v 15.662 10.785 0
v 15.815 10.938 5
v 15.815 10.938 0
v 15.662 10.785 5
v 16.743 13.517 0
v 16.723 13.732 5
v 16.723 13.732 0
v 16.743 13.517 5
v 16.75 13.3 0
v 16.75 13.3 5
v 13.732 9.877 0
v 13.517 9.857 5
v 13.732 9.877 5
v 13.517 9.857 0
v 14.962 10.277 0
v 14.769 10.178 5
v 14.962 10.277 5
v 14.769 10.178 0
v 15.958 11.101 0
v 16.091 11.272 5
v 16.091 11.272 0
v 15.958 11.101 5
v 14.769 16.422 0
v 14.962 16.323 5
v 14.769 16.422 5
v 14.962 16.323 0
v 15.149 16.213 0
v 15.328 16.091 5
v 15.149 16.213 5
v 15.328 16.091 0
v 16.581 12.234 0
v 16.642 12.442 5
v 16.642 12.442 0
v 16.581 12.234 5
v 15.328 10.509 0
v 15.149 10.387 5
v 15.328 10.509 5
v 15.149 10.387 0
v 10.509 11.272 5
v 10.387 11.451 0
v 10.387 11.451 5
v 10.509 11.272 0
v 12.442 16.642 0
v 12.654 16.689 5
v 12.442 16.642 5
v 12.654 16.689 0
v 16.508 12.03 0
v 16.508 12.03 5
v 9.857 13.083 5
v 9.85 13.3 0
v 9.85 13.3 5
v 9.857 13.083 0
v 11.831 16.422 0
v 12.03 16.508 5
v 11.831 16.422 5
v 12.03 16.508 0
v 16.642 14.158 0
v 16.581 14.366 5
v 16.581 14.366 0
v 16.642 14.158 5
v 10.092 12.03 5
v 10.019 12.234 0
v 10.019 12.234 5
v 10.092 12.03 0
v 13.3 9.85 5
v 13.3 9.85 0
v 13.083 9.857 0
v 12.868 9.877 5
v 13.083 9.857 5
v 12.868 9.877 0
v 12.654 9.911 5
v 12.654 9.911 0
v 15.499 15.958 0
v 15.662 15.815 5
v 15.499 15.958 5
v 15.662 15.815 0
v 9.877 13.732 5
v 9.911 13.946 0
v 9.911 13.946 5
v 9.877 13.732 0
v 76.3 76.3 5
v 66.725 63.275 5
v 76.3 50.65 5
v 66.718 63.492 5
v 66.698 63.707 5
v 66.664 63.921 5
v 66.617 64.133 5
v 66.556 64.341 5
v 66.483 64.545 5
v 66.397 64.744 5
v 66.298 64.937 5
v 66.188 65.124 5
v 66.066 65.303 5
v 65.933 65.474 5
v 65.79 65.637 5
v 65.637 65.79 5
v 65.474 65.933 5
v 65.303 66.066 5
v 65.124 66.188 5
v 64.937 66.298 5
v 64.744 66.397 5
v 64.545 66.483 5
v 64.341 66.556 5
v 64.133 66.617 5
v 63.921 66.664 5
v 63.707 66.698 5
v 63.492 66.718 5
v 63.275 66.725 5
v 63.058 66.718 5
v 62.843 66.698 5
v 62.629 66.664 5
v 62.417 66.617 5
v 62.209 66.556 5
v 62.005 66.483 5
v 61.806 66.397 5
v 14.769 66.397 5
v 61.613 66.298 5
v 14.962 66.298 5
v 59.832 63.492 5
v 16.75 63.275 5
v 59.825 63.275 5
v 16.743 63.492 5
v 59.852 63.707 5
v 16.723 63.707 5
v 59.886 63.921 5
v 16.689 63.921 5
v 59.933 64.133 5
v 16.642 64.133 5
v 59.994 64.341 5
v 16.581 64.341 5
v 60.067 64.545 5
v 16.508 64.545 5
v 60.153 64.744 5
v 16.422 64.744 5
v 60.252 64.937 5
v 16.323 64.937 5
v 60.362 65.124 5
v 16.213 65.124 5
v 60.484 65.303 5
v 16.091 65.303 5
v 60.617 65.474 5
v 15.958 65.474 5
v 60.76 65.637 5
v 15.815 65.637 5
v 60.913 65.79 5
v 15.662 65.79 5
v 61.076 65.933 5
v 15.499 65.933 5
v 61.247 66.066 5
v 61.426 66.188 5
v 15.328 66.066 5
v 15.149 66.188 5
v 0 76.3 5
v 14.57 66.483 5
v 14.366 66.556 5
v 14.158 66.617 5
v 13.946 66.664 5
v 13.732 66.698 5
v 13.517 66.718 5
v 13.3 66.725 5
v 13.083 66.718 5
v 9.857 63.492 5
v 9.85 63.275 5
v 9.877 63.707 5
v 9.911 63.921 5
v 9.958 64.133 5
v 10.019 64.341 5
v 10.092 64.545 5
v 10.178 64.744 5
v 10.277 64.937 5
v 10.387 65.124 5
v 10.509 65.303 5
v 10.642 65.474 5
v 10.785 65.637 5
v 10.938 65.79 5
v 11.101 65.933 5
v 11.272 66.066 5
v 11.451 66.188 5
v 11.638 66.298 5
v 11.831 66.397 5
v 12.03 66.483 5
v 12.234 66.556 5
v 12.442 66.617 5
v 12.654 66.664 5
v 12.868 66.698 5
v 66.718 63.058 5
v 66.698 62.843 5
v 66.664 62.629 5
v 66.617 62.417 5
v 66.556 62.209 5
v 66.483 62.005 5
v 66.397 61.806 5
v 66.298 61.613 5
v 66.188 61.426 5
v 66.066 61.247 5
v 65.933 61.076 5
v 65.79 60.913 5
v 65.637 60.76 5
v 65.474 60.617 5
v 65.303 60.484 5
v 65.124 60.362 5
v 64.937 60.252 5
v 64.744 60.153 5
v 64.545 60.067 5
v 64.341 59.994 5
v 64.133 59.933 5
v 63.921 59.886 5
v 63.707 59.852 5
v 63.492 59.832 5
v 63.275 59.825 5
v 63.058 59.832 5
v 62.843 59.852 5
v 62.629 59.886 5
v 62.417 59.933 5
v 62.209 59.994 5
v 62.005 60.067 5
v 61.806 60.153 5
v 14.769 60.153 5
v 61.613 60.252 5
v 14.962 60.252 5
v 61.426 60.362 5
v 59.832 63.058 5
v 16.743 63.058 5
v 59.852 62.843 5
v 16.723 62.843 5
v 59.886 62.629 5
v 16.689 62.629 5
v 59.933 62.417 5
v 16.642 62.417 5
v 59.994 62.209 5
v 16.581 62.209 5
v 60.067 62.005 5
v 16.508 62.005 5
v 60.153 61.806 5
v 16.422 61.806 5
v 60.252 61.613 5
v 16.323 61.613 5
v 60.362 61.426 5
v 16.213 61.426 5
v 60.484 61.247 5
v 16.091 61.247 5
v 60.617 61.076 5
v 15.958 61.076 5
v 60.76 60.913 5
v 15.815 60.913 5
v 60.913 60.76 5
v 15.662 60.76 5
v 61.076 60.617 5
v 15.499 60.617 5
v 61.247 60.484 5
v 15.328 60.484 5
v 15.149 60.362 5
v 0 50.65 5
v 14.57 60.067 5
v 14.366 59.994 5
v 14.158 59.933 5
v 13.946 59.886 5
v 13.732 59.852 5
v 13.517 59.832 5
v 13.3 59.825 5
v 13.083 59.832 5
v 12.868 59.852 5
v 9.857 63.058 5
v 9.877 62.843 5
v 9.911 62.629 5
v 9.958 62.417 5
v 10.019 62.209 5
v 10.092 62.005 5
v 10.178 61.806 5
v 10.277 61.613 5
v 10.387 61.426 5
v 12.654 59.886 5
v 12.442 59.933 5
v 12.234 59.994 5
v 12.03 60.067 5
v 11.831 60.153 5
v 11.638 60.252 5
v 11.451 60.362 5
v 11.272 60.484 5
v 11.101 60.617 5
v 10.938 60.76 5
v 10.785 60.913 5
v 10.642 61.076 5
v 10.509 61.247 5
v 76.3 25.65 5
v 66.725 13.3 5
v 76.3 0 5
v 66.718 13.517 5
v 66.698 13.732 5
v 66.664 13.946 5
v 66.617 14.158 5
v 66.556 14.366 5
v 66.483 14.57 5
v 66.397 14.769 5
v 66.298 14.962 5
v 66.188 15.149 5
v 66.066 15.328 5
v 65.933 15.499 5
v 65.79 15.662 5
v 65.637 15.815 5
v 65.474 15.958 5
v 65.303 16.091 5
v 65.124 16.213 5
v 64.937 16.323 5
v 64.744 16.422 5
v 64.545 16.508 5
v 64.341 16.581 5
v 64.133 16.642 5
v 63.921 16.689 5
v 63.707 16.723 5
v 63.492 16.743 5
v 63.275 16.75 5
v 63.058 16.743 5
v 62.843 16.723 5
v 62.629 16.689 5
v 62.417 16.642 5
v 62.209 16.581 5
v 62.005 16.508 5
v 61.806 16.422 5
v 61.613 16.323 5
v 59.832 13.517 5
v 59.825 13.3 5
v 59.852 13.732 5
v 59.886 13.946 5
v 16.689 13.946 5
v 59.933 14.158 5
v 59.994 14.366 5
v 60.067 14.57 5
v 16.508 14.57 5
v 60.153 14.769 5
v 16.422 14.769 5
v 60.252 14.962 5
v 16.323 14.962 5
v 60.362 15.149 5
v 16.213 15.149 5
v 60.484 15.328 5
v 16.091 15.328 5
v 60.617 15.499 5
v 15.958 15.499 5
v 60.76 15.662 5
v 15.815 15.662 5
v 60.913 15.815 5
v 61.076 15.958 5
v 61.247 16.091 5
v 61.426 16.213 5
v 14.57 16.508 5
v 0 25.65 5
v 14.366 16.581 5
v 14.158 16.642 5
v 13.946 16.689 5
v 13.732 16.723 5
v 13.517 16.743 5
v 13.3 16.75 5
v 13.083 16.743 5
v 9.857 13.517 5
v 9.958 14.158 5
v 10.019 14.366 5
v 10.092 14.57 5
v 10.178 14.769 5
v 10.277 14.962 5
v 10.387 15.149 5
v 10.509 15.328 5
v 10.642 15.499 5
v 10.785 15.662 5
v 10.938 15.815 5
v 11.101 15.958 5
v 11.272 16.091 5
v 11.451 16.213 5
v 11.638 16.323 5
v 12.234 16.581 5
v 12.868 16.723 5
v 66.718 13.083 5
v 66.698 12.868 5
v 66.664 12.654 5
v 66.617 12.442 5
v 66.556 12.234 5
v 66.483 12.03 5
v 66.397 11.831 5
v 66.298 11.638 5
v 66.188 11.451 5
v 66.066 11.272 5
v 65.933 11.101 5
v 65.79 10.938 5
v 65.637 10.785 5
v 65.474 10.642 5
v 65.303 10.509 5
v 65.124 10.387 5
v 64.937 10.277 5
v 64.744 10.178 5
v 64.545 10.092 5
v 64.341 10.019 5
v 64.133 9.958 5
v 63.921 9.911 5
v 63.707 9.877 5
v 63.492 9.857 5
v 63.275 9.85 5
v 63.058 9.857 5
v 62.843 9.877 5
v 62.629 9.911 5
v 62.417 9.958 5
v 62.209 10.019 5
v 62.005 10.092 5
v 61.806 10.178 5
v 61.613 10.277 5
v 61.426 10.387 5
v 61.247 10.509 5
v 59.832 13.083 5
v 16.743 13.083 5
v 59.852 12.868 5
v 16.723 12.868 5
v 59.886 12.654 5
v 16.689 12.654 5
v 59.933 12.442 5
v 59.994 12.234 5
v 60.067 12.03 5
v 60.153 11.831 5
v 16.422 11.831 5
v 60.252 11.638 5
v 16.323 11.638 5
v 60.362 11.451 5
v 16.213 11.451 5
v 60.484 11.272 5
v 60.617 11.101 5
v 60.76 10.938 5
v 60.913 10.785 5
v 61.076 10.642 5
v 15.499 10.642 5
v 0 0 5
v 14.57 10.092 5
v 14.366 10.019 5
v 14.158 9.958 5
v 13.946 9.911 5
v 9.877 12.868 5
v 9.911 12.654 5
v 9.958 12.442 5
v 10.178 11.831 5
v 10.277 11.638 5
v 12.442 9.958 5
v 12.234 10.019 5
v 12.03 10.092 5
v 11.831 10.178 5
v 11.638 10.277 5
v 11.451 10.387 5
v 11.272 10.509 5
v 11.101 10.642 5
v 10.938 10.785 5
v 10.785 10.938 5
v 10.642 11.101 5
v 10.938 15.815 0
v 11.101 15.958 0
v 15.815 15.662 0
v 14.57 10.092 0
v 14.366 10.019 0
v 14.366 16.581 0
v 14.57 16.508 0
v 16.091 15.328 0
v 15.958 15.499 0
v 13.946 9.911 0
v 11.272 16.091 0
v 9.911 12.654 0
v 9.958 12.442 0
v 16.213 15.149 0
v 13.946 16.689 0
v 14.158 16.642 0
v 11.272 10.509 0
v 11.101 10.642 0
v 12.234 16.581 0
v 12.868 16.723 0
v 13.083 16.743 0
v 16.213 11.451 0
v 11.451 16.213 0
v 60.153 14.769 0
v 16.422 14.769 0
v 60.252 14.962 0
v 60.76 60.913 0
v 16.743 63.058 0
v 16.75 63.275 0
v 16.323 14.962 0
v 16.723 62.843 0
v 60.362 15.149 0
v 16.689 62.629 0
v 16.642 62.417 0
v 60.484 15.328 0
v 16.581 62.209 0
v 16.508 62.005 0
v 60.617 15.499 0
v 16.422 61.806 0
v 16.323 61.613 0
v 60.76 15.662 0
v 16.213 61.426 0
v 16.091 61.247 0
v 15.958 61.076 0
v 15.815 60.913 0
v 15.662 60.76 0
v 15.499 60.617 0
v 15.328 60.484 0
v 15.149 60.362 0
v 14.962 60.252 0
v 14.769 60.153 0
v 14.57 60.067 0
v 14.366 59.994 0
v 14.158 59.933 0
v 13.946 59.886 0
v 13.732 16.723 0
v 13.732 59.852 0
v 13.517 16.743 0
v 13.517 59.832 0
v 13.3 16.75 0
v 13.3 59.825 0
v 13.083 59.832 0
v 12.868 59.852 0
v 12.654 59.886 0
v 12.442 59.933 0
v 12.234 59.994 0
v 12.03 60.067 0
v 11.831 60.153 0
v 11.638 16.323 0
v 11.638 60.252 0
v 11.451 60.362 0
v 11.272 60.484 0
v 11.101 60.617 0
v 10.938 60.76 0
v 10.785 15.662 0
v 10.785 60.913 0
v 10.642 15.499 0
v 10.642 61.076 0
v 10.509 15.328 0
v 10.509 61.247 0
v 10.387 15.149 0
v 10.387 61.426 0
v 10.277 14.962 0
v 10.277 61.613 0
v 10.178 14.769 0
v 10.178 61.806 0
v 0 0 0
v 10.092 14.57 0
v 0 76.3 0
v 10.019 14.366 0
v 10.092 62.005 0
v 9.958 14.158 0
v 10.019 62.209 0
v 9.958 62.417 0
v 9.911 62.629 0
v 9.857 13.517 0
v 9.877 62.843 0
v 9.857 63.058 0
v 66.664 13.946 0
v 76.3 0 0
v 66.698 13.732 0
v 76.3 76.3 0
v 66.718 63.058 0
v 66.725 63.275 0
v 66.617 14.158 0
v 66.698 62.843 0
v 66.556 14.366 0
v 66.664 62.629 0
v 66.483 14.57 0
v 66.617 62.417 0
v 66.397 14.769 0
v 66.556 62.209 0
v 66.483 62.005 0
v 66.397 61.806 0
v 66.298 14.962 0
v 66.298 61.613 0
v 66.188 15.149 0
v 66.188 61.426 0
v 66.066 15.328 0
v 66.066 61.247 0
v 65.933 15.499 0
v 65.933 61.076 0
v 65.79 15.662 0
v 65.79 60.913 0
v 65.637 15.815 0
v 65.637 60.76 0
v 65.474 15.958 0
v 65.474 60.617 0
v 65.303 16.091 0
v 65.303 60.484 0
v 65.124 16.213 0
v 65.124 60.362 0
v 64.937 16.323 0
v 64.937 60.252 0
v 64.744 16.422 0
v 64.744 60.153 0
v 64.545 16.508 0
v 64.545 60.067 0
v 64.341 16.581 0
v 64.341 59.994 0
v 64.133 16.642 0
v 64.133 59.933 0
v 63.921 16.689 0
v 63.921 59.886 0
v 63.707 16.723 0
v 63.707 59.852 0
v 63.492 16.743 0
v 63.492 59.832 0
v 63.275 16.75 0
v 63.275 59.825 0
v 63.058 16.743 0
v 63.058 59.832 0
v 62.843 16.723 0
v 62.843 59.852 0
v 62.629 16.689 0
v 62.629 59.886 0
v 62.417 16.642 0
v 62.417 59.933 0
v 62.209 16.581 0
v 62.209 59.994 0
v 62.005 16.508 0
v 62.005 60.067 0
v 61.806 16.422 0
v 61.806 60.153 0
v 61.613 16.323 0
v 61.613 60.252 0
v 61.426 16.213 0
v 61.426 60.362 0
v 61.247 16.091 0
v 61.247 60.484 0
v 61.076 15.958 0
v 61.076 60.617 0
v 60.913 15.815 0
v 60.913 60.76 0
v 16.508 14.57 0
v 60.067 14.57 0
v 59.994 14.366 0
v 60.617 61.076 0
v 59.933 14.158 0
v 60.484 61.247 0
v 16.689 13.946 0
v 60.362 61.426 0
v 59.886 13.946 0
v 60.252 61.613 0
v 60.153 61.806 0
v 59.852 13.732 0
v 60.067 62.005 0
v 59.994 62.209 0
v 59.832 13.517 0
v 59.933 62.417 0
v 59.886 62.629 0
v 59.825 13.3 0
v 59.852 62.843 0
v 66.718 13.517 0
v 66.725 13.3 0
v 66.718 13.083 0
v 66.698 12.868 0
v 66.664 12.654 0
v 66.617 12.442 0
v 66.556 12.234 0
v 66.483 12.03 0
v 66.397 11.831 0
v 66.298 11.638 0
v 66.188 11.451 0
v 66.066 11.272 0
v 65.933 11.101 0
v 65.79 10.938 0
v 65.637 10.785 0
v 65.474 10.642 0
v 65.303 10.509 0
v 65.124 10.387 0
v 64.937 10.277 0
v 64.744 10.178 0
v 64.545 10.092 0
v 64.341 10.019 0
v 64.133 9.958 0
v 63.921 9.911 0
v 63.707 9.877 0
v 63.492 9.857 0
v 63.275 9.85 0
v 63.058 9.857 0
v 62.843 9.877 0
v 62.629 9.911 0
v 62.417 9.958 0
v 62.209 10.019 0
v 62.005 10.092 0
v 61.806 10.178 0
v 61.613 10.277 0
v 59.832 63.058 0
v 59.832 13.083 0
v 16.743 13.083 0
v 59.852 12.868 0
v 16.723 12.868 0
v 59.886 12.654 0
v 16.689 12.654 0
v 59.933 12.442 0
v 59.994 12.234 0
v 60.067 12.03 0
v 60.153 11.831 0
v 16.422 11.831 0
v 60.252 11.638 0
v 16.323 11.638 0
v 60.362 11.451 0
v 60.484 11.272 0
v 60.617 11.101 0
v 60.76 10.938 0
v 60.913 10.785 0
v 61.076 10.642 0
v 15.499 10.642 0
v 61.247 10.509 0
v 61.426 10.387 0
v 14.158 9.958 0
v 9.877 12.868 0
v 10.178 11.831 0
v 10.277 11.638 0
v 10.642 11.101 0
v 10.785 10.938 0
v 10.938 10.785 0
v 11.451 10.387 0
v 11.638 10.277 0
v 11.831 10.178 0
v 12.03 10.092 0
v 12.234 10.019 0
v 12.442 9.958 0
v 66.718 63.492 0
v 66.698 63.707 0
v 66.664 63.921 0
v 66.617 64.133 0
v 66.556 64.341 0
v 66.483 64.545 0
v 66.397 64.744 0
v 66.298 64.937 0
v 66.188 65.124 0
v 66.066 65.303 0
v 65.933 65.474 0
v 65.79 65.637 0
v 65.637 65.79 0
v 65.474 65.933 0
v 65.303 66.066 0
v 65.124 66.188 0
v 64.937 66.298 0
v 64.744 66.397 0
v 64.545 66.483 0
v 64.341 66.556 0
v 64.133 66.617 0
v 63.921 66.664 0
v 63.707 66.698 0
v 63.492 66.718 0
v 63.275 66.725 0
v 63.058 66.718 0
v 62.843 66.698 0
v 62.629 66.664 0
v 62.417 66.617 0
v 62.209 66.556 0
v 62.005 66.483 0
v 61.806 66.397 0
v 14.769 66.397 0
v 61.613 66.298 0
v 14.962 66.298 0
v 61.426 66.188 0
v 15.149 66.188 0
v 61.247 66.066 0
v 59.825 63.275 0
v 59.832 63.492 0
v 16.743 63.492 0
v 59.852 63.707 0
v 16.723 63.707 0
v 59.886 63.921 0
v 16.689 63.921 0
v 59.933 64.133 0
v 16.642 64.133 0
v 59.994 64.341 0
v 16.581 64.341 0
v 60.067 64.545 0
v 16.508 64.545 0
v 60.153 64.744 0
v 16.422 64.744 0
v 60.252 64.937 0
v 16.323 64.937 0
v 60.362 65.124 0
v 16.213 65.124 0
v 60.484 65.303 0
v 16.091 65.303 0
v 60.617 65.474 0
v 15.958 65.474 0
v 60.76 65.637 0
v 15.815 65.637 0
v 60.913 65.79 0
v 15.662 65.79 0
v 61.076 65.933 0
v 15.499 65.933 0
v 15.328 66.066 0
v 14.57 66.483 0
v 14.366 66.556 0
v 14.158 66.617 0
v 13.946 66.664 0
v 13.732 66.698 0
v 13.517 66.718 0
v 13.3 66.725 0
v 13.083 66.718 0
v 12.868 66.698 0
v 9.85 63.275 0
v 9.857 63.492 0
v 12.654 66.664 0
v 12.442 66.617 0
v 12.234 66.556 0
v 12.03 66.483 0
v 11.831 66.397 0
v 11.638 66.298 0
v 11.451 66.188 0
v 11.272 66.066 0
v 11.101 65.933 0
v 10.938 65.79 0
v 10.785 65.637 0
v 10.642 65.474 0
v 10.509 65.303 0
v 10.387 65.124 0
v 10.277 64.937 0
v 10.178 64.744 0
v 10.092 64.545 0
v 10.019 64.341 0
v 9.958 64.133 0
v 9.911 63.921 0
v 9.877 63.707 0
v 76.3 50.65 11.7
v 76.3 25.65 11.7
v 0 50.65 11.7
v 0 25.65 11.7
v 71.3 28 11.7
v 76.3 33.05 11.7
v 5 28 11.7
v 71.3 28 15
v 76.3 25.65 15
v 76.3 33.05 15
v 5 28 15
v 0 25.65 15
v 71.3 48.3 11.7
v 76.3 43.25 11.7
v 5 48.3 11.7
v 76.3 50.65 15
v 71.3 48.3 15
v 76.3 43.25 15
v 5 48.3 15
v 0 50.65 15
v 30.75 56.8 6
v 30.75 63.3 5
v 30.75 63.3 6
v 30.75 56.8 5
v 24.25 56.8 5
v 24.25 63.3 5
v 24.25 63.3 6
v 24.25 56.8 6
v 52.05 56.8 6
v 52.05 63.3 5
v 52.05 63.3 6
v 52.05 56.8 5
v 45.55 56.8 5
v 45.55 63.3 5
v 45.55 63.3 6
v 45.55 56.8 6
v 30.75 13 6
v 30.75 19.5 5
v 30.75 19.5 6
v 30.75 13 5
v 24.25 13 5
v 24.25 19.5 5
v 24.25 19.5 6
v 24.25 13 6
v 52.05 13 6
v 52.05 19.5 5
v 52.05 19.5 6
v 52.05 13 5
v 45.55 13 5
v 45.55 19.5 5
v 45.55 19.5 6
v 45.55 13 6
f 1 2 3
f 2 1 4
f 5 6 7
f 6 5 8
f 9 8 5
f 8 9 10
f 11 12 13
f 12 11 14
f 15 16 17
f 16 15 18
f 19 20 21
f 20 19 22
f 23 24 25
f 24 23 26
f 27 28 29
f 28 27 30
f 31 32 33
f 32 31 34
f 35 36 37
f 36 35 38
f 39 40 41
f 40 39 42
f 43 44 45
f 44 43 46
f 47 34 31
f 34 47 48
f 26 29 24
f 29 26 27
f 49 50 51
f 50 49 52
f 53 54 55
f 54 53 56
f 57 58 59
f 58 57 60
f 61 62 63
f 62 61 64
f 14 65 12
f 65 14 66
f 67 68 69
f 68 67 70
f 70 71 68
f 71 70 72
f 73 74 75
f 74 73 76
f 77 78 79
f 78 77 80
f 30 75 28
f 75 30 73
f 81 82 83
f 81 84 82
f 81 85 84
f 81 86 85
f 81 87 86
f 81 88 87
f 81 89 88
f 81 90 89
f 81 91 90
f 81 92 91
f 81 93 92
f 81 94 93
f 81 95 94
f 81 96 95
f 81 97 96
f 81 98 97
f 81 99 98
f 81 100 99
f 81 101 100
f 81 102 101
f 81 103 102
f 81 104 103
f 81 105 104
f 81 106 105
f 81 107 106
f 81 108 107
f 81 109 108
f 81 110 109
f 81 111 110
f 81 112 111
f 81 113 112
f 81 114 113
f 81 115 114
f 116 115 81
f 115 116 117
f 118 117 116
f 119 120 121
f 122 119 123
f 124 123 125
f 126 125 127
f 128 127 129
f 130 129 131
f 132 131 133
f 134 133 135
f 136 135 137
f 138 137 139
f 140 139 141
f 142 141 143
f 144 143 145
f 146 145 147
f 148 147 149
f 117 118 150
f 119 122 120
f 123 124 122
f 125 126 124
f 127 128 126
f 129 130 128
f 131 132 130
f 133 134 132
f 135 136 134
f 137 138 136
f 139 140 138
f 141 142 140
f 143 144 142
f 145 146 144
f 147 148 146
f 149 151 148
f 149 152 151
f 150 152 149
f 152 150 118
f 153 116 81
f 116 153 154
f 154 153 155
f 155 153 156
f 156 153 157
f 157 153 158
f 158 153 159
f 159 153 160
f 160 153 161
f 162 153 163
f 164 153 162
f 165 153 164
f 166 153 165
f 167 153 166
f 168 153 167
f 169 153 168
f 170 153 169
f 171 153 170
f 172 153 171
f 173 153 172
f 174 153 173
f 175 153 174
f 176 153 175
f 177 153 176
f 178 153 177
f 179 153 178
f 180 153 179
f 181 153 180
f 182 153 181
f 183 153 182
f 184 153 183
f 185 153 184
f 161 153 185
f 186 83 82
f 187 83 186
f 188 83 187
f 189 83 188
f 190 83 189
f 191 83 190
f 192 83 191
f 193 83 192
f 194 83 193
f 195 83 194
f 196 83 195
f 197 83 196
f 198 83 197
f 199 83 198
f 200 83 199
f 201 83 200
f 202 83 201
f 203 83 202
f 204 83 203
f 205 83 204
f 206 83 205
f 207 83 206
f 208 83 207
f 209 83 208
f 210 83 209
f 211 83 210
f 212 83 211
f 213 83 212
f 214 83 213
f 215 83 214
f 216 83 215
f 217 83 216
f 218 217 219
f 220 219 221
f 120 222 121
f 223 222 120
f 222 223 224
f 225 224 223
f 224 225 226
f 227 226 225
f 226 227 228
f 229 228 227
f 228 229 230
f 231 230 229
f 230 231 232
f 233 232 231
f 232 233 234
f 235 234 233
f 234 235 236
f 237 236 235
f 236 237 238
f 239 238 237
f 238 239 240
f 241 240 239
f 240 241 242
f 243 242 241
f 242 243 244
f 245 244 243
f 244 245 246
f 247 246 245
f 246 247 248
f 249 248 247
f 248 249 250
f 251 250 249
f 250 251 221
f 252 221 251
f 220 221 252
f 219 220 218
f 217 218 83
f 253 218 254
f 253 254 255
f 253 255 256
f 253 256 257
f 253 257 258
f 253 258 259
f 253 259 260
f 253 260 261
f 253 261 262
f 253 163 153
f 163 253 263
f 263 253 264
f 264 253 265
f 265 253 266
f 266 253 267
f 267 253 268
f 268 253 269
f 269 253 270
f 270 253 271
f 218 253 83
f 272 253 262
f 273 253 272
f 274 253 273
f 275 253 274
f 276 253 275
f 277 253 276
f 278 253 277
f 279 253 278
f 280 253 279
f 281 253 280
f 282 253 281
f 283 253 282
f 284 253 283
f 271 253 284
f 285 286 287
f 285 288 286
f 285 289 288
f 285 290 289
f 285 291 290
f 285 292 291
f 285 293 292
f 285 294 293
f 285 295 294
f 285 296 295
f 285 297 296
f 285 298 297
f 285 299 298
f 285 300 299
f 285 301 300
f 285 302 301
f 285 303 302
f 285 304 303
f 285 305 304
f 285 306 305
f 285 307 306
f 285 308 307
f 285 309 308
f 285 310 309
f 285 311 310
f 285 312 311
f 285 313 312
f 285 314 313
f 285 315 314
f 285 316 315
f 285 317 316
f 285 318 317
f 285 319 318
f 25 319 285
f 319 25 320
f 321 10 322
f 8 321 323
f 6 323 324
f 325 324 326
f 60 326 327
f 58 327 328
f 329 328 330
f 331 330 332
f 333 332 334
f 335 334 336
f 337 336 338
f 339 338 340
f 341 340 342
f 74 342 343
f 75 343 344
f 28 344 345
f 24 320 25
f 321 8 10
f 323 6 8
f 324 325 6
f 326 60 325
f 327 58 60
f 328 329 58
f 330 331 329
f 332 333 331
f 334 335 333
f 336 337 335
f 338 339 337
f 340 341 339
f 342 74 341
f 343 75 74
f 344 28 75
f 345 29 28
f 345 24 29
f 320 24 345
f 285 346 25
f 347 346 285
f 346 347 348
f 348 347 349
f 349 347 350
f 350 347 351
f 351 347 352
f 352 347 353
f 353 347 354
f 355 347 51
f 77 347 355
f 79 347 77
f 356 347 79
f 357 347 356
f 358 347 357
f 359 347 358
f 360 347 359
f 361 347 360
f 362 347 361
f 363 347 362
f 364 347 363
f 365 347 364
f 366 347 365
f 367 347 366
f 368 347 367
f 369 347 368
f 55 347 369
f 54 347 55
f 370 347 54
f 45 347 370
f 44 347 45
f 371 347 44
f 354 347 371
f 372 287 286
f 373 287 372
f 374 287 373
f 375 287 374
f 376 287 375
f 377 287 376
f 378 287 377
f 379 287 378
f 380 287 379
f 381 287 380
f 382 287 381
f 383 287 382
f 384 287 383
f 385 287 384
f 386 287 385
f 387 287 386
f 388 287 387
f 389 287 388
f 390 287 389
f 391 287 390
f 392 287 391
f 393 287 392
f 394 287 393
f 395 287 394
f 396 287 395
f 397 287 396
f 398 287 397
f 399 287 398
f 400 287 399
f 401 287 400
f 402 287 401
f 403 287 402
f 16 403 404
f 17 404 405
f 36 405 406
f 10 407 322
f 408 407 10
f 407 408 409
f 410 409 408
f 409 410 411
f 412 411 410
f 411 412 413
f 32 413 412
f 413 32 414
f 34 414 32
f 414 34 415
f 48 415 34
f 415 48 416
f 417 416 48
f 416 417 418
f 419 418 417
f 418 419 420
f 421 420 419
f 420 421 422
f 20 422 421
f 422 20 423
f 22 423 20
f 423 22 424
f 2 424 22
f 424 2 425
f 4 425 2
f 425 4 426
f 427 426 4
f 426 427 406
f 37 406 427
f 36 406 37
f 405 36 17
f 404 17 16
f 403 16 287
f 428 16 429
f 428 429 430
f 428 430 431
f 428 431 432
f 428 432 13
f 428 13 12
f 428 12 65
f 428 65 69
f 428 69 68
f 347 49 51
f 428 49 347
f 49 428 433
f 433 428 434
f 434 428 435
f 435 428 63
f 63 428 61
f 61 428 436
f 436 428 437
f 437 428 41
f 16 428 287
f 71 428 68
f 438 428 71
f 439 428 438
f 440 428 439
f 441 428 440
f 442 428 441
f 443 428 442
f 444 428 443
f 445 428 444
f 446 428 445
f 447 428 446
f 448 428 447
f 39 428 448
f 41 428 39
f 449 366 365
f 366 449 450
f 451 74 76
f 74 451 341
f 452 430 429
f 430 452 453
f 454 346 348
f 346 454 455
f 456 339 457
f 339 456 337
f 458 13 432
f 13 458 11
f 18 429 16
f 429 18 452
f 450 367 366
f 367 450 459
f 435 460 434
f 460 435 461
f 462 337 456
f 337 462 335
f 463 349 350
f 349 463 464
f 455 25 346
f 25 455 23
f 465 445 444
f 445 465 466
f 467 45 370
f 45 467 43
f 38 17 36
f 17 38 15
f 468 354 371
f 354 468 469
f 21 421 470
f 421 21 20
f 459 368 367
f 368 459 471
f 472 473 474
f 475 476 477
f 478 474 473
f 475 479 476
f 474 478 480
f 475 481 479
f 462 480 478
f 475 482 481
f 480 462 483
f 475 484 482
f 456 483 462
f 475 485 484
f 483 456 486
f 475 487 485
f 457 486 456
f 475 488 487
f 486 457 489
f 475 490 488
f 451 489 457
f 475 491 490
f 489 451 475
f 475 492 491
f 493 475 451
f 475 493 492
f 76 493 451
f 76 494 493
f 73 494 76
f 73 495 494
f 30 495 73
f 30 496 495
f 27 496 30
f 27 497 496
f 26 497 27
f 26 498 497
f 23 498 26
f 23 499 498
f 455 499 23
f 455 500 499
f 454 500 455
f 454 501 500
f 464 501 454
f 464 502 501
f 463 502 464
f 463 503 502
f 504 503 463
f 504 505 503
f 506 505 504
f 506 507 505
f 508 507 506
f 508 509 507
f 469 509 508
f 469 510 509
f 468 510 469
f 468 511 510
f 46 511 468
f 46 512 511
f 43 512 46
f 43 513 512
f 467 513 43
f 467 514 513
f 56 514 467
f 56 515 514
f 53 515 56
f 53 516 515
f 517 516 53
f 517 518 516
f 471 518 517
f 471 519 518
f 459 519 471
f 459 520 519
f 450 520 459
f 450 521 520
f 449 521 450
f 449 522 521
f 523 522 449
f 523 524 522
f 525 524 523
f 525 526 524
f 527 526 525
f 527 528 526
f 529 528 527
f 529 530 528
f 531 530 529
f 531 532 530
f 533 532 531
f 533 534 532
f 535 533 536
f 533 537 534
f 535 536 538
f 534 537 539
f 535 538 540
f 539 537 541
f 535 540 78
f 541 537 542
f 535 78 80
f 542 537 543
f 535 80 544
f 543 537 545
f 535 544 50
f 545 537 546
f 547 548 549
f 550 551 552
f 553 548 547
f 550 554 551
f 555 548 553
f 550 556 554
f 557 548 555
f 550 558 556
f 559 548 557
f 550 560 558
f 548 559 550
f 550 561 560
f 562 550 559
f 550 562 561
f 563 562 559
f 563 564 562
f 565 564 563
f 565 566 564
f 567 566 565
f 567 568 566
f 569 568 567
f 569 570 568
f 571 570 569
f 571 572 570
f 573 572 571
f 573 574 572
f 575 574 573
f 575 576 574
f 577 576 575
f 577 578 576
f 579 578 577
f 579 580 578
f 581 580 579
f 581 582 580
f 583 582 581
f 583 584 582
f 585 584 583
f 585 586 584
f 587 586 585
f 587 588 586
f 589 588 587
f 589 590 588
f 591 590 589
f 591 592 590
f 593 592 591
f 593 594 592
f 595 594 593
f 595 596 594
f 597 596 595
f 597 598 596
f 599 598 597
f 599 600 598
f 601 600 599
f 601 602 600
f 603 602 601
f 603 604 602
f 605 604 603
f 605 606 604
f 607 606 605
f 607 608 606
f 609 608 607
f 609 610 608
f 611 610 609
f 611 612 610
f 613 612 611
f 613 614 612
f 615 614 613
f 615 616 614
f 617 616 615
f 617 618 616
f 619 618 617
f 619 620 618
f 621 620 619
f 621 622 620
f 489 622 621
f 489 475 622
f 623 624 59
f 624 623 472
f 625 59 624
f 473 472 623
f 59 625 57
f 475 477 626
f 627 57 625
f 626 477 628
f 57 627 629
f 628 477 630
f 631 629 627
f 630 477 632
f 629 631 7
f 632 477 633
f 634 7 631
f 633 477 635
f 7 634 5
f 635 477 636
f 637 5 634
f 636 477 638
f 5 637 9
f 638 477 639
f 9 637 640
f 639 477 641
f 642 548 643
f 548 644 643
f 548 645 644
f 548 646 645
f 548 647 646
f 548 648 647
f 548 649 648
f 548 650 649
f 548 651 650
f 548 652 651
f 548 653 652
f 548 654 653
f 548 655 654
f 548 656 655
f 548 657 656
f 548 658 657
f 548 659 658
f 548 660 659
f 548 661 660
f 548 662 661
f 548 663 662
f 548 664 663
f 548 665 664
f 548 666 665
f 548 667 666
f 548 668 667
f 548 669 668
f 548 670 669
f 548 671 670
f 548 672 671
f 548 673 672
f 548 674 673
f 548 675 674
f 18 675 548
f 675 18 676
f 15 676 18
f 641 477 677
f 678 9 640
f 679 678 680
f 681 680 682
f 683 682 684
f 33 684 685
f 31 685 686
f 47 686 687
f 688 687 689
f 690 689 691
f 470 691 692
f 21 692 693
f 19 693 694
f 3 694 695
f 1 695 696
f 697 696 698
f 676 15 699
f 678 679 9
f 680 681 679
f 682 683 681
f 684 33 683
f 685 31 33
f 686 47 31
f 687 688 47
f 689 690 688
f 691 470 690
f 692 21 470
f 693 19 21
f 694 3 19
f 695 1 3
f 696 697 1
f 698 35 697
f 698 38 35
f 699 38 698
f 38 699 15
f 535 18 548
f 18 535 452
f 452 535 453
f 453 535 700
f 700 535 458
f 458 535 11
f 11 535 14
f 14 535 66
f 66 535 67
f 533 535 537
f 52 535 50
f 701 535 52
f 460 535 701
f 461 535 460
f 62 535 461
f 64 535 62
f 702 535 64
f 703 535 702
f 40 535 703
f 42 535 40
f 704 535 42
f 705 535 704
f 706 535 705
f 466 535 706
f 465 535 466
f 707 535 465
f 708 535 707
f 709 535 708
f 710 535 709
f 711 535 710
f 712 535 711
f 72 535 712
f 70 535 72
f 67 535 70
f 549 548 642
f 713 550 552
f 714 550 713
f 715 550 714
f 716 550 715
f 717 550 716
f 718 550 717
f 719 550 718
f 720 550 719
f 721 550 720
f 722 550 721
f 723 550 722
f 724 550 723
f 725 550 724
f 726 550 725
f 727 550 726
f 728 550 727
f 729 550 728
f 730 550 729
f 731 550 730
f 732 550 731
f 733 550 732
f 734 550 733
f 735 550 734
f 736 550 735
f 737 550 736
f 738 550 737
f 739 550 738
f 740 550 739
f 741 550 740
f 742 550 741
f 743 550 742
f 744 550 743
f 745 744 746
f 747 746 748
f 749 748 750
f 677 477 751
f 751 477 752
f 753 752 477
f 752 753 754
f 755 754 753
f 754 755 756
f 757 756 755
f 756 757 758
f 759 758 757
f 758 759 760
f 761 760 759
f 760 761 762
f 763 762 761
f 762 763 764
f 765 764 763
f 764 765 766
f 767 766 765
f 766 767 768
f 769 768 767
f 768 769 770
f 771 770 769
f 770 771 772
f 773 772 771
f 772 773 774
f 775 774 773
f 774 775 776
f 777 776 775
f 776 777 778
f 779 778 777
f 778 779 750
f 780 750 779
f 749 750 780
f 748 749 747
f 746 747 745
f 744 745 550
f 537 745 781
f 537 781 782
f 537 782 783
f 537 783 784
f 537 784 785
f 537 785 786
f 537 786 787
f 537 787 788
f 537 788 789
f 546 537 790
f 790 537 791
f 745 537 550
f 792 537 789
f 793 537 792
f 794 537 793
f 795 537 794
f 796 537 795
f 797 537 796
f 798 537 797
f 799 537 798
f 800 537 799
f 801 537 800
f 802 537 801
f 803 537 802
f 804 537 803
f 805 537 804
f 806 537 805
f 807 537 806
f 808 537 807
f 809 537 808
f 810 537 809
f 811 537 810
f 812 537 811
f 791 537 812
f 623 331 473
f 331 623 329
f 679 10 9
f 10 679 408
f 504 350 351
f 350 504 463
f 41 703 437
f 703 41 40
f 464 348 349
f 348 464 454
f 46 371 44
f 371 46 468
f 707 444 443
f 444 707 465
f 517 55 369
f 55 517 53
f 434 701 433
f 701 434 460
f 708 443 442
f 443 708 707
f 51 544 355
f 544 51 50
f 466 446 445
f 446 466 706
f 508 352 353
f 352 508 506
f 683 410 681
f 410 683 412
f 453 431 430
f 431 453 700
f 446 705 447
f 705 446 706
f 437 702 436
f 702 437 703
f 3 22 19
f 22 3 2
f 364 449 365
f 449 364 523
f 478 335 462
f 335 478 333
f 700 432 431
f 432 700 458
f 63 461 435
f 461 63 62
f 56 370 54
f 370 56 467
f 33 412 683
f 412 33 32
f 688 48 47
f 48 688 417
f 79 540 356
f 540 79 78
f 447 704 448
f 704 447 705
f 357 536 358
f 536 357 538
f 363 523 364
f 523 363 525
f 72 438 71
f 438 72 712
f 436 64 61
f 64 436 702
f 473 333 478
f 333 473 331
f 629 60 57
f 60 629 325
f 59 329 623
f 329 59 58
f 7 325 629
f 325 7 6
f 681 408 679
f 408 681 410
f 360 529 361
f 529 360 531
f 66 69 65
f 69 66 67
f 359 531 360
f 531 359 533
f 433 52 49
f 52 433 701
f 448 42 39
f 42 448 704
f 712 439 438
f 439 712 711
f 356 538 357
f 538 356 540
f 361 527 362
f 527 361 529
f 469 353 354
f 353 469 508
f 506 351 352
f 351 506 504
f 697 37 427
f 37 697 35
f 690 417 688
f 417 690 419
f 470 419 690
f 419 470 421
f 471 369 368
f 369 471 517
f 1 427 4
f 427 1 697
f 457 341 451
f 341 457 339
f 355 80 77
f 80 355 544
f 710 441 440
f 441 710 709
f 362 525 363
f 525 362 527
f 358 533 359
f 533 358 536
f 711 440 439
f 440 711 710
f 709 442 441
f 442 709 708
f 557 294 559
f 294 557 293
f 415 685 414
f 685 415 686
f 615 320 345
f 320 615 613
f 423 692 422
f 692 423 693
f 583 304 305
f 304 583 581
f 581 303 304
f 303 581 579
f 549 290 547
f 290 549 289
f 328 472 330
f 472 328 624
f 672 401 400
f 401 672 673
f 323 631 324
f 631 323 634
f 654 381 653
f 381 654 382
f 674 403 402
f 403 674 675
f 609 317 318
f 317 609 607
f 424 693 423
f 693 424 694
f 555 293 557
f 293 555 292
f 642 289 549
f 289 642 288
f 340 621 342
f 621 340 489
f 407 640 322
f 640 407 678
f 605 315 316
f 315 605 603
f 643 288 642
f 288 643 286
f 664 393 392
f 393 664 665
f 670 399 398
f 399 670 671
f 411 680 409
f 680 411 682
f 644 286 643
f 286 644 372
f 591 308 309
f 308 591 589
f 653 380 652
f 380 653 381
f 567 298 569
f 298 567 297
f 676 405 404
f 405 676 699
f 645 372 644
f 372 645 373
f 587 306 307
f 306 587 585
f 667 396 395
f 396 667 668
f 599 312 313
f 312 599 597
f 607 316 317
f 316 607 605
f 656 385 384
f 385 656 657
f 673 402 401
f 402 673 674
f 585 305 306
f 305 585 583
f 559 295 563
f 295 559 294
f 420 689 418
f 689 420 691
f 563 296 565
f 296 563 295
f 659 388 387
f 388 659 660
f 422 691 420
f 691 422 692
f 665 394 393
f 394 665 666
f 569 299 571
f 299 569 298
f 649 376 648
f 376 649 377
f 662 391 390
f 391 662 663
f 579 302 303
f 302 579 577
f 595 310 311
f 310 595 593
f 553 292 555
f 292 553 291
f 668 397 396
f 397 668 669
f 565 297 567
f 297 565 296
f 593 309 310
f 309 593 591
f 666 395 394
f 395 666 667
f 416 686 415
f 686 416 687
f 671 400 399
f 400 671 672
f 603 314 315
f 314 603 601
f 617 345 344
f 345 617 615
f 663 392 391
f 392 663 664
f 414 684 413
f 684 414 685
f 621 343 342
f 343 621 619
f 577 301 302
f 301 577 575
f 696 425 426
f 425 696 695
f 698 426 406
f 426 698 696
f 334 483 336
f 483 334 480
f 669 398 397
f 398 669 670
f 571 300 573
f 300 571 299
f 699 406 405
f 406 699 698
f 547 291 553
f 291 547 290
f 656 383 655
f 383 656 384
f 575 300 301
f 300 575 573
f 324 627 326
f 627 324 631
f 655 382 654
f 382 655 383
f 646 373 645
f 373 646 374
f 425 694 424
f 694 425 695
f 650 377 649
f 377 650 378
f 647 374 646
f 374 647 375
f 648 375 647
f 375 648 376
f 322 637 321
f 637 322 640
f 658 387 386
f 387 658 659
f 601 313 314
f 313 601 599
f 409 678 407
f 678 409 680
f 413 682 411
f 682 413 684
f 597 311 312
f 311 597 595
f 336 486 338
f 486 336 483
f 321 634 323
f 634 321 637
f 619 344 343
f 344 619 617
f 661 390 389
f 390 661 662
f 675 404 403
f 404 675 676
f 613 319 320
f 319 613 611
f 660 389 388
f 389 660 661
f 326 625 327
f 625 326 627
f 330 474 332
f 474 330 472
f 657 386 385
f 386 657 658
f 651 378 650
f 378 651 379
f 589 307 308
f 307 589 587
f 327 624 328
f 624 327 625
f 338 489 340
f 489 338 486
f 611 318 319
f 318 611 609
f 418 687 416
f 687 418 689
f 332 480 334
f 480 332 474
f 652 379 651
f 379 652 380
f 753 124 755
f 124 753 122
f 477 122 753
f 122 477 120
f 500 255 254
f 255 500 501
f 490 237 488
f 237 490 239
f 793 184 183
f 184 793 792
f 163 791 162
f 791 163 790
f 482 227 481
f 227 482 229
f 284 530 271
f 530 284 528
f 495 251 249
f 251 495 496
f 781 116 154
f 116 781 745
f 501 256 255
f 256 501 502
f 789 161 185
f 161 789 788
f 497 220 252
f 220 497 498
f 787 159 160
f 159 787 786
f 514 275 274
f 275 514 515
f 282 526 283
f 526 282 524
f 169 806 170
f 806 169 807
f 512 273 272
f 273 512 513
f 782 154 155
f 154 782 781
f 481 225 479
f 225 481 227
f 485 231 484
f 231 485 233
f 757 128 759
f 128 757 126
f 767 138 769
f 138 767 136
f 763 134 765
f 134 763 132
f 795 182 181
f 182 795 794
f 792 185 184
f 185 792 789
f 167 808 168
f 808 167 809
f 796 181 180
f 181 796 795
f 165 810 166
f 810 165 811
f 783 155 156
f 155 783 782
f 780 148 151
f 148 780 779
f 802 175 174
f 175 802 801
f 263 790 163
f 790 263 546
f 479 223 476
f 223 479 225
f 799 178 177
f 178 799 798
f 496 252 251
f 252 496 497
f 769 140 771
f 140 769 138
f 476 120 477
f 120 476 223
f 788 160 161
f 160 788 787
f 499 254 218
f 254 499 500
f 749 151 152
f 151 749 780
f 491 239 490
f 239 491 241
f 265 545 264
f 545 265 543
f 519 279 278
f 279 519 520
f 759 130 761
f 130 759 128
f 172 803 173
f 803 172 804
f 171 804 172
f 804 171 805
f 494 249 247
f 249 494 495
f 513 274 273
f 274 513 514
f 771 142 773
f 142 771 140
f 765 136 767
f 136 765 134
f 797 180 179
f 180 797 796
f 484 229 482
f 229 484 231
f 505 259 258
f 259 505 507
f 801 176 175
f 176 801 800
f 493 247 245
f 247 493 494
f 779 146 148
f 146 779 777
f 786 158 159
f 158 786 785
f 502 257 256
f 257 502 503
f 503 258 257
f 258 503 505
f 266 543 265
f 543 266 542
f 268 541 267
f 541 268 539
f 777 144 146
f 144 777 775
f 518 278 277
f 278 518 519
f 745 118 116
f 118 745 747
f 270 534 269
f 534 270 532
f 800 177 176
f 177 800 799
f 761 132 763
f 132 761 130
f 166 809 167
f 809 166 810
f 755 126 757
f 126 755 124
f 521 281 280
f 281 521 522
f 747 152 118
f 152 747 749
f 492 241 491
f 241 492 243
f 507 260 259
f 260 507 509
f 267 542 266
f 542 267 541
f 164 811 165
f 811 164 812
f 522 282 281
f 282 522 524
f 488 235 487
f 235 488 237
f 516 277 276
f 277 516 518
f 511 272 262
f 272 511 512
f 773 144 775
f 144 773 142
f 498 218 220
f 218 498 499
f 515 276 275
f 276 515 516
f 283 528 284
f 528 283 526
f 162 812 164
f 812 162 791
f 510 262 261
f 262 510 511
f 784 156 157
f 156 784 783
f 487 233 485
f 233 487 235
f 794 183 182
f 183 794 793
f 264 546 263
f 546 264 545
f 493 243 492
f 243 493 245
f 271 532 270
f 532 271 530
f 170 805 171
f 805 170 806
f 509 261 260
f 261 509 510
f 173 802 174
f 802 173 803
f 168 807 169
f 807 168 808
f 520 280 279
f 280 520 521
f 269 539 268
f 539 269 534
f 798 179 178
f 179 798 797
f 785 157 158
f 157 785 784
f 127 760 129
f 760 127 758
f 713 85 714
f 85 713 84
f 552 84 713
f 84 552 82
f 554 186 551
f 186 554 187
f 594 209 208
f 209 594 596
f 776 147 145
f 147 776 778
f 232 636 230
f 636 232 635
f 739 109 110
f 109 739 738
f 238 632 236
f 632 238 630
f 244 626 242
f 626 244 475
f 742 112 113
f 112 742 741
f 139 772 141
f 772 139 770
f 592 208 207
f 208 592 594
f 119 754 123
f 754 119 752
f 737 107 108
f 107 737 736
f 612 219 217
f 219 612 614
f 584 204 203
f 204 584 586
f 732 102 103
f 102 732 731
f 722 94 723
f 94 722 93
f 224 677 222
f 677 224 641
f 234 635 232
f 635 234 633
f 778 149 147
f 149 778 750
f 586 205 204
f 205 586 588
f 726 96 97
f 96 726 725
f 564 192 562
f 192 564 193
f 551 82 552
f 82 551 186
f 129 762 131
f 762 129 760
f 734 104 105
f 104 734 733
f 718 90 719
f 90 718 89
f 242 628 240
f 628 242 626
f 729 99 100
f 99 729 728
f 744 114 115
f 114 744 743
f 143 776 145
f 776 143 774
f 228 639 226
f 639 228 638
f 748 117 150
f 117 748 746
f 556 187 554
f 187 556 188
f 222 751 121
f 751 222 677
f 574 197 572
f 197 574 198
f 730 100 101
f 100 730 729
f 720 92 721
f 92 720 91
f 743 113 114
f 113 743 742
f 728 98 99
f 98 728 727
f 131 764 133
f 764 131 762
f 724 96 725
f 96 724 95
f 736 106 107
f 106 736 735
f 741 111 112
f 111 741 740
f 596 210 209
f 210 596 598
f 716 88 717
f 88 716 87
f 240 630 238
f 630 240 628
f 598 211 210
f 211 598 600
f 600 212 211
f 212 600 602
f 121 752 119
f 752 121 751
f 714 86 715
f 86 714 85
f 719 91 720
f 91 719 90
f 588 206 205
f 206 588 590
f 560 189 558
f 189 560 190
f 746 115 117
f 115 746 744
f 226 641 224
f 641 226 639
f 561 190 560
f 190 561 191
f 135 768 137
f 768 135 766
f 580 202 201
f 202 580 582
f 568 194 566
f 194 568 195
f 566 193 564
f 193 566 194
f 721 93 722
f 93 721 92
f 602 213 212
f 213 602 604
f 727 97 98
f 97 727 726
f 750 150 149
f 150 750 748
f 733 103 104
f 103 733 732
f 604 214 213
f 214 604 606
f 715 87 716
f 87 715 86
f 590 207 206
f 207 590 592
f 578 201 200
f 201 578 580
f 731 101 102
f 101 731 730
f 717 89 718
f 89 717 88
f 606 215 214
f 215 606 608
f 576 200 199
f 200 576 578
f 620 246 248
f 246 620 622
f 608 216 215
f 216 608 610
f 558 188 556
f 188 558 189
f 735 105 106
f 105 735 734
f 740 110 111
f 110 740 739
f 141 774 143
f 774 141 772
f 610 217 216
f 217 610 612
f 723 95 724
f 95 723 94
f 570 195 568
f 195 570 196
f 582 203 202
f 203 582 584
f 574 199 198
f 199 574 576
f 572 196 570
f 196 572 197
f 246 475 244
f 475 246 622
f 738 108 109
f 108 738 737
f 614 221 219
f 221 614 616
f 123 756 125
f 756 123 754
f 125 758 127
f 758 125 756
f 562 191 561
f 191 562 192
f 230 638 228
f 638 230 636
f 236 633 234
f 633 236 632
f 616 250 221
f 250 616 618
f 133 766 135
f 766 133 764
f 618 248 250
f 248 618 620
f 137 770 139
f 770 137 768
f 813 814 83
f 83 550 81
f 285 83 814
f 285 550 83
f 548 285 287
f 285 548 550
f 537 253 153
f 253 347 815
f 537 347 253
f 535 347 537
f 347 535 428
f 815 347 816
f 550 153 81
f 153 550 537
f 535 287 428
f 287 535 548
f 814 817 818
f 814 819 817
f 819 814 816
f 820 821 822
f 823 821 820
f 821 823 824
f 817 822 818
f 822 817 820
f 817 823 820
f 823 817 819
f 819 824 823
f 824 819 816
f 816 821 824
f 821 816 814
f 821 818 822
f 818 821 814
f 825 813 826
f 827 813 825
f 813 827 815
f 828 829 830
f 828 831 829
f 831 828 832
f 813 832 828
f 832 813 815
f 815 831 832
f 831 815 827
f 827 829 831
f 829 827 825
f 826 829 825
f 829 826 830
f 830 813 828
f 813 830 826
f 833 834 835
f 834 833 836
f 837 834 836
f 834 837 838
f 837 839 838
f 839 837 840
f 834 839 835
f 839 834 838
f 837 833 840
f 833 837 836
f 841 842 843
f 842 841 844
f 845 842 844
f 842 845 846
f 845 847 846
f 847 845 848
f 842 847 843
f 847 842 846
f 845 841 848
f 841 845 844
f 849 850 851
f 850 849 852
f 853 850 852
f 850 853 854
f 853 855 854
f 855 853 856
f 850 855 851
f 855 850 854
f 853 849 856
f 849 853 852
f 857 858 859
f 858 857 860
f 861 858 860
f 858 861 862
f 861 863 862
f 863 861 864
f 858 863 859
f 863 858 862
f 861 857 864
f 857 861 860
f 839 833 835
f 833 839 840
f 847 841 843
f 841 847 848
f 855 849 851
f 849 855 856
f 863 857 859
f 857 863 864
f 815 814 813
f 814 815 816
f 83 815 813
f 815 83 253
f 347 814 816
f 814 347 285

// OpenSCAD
// file: module_Cubo.scad
module Cubo(){
    difference(){
        cube([50,50,50]);
        #translate([2.5,2.5,2.5])cube(45);
        #translate([25,25,0])cylinder(h=2.5,r1=15,r2=15);
        #translate([25,25,47.5])cylinder(h=2.5,r1=15,r2=15);
        rotate([90,0,0])translate([25,25,-2.5])cylinder(h=2.5,r1=15,r2=15);
        rotate([90,0,0])translate([25,25,-50])cylinder(h=2.5,r1=15,r2=15);
        rotate([0,90,0])translate([-25,25,])cylinder(h=2.5,r1=15,r2=15);
        rotate([0,90,0])translate([-25,25,47.5])cylinder(h=2.5,r1=15,r2=15);
    }
}
// main file
// ----- ----- Declaração de Variáveis ----- ----- //

res=100;

folga1=0.15;
folga2=0.05;

cubo=50;

ds_splh=(44+40)/2;
d_splh=ds_splh/12; //3.5

diff_splh_x=17;
diff_splh_y=10;
diff_splh_z=19.25;

raio_bobina=12.5;

xeuss_x=76.3;
xeuss_y=76.3;
xeuss_z=5;

xt=14;
yt=89.8-xeuss_y;
zt=xeuss_z;

rx=6.6/2;
tr_x=13.65;
tr_cil=10+rx;
cc = (56.5+43.45)/2;

Xdelize=xeuss_x;
Ydelize=25;
Zdelize=11.7-xeuss_z;

alt_poly=15-Zdelize-xeuss_z;
esp_poly=2.5;
apt_poly=7.4;
poly5=5;

x_encaixe=xeuss_x-2*poly5;
y_encaixe=20;
z_encaixe=3;

splh_x=20;
splh_y=10;
splh_z=60.35-z_encaixe;
r_splh=1;

alt_bob=11;

esp_pottop=3;
long_pottop=6.5;
alt_quad=5;
trans_aux2=-diff_splh_z/2-cubo/2+xeuss_z+Zdelize+splh_z-splh_x/2+diff_splh_x/2+z_encaixe-folga1-esp_pottop-alt_bob-alt_quad;
desce_enough=trans_aux2-xeuss_z-folga2;
gordura=1;

// ----- ----- Declaração de Bibliotecas ----- ----- //
use <funcoes_GFCx.scad>
use <module_Cubo.scad>
use <module_MontagemDoCubo.scad>

//não apague, mas também não descomente
//translate([tr_x,xeuss_y,0])cube([xt,yt,zt]); 

// ----- ----- Declaração de Funções ----- ----- //
module pottop(param,param2,folga,alt){
    translate([-param-folga,-param-folga,-param-folga]){
        cube([param+param2,param,param+param2]);
        cube([param,param+param2,param+param2]);
        translate([0,0,-alt])cube([param+param2,param+param2,param+alt]);
    }
}


// ----- ----- Base Atuador Manual Linear ----- ----- //
difference(){
    translate([0,0,0])cube([xeuss_x,xeuss_y,xeuss_z]);
    translate([tr_cil,tr_cil,0]){
        #translate([0,0,0])cylinder(xeuss_z,rx+folga1,rx+folga1,$fn=res);
        #translate([cc,0,0])cylinder(xeuss_z,rx+folga1,rx+folga1,$fn=res);
        #translate([0,cc,0])cylinder(xeuss_z,rx+folga1,rx+folga1,$fn=res);
        #translate([cc,cc,0])cylinder(xeuss_z,rx+folga1,rx+folga1,$fn=res);
    }
}

// ----- ----- Suporte de Amostras ----- ----- //
translate([0,xeuss_y/2-Ydelize/2,xeuss_z])cube([Xdelize,Ydelize,Zdelize]);
translate([0,xeuss_y/2-Ydelize/2,xeuss_z+Zdelize]){
    linear_extrude(alt_poly)polygon([[0,0],[xeuss_x,0],[xeuss_x,apt_poly],[xeuss_x-poly5,esp_poly-folga1],[poly5,esp_poly-folga1]]);
    translate([0,Ydelize,0])linear_extrude(alt_poly)polygon([[0,0],[xeuss_x,0],[xeuss_x,-apt_poly],[xeuss_x-poly5,-esp_poly+folga1],[poly5,-esp_poly+folga1]]);
}/*
translate([poly5,xeuss_y/2-Ydelize/2+esp_poly,xeuss_z+Zdelize]){
    cube([x_encaixe,y_encaixe,z_encaixe]);
    difference(){
        translate([x_encaixe/2-splh_x/2,y_encaixe/2-splh_y/2,z_encaixe])cube([splh_x,splh_y,splh_z]);
        #translate([x_encaixe/2-splh_x/2+splh_x/2-diff_splh_x/2,y_encaixe/2-splh_y/2,splh_z-(splh_x/2-diff_splh_x/2)-diff_splh_z+z_encaixe])
        #cube([diff_splh_x,diff_splh_y,diff_splh_z]);
        #translate([0,0,-10])
        #translate([x_encaixe/2-splh_x/2+splh_x/2-(4*d_splh)/2,y_encaixe/2,splh_z-(splh_x/2-diff_splh_x/2)-diff_splh_z+z_encaixe])
        #funcao_2d_array_cilindros(r_splh,d_splh,10+splh_x/2-diff_splh_x/2+diff_splh_z,5,1,1,res,"Conjunto Sample Holder");
        #translate([0,0,-10])
        #translate([x_encaixe/2-splh_x/2+splh_x/2-(d_splh*4)/2,y_encaixe/2,splh_z-(splh_x/2-diff_splh_x/2)-diff_splh_z+z_encaixe])
        #3d_array_sp_cb(1,1,1,1,d_splh,30,5,1,1,1,"sphere",res,"Conjunto Sample Holder Esferas");
    }
}*/


difference(){
    translate([xeuss_x/2-cubo/2,xeuss_x/2-cubo/2,0])
    translate([0,0,splh_z-(splh_x/2-diff_splh_x/2)-diff_splh_z+z_encaixe])
    translate([0,0,xeuss_z+Zdelize])
    translate([0,0,diff_splh_z/2-cubo/2]){
        //MontagemDoCubo();
        //Cubo();
        
        //pottop(esp_pottop,long_pottop,folga1,alt_bob);
        //translate([50,0,0])rotate([0,0,90])pottop(esp_pottop,long_pottop,folga1,alt_bob);
        //translate([50,50,0])rotate([0,0,2*90])pottop(esp_pottop,long_pottop,folga1,alt_bob);
        //translate([0,50,0])rotate([0,0,3*90])pottop(esp_pottop,long_pottop,folga1,alt_bob);

        //translate([-folga1-esp_pottop,-folga1-esp_pottop,-folga1-esp_pottop-alt_bob-alt_quad])
        //cube([cubo+2*esp_pottop+2*folga1,cubo+2*esp_pottop+2*folga1,alt_quad]);
        
        translate([0,0,-desce_enough-folga2]){
            translate([(long_pottop+esp_pottop)*1.5,esp_pottop,0])
            translate([-folga1-esp_pottop,-folga1-esp_pottop,-folga1-esp_pottop-alt_bob-alt_quad])
            cube([long_pottop,long_pottop,desce_enough]);
            translate([-(long_pottop+esp_pottop)*1.5,esp_pottop,0])
            translate([cubo+2*esp_pottop+2*folga1-long_pottop,0,0])
            translate([-folga1-esp_pottop,-folga1-esp_pottop,-folga1-esp_pottop-alt_bob-alt_quad])
            cube([long_pottop,long_pottop,desce_enough]);
            translate([0,cubo+2*esp_pottop+2*folga1-long_pottop-esp_pottop,0]){
                translate([(long_pottop+esp_pottop)*1.5,0,0])
                translate([-folga1-esp_pottop,-folga1-esp_pottop,-folga1-esp_pottop-alt_bob-alt_quad])
                cube([long_pottop,long_pottop,desce_enough]);
                translate([-(long_pottop+esp_pottop)*1.5,0,0])
                translate([cubo+2*esp_pottop+2*folga1-long_pottop,0,0])
                translate([-folga1-esp_pottop,-folga1-esp_pottop,-folga1-esp_pottop-alt_bob-alt_quad])
                cube([long_pottop,long_pottop,desce_enough]);
            }
        }
    }
    #translate([poly5,xeuss_y/2-Ydelize/2+esp_poly,xeuss_z+Zdelize])
    #translate([x_encaixe/2-(splh_x*1.2)/2,y_encaixe/2-(splh_y*1.2)/2,z_encaixe])
    #cube([splh_x*1.2,splh_y*1.2,splh_z*0.2]);
    
    #translate([0,0,gordura])
    #translate([xeuss_x/2-cubo/2,xeuss_x/2-cubo/2,0])
    #translate([0,0,splh_z-(splh_x/2-diff_splh_x/2)-diff_splh_z+z_encaixe])
    #translate([0,0,xeuss_z+Zdelize])
    #translate([0,0,diff_splh_z/2-cubo/2])
    translate([0,0,-desce_enough-folga2]){
        translate([(long_pottop+esp_pottop)*1.5,esp_pottop,0])
        translate([-folga1-esp_pottop,-folga1-esp_pottop,-folga1-esp_pottop-alt_bob-alt_quad])
        cube([long_pottop,long_pottop,desce_enough]);
        translate([-(long_pottop+esp_pottop)*1.5,esp_pottop,0])
        translate([cubo+2*esp_pottop+2*folga1-long_pottop,0,0])
        translate([-folga1-esp_pottop,-folga1-esp_pottop,-folga1-esp_pottop-alt_bob-alt_quad])
        cube([long_pottop,long_pottop,desce_enough]);
        translate([0,cubo+2*esp_pottop+2*folga1-long_pottop-esp_pottop,0]){
            translate([(long_pottop+esp_pottop)*1.5,0,0])
            translate([-folga1-esp_pottop,-folga1-esp_pottop,-folga1-esp_pottop-alt_bob-alt_quad])
            cube([long_pottop,long_pottop,desce_enough]);
            translate([-(long_pottop+esp_pottop)*1.5,0,0])
            translate([cubo+2*esp_pottop+2*folga1-long_pottop,0,0])
            translate([-folga1-esp_pottop,-folga1-esp_pottop,-folga1-esp_pottop-alt_bob-alt_quad])
            cube([long_pottop,long_pottop,desce_enough]);
        }
    }
}

/*
difference(){
    translate([0,0,folga2])
    translate([xeuss_x/2-cubo/2,xeuss_x/2-cubo/2,0])
    translate([0,0,splh_z-(splh_x/2-diff_splh_x/2)-diff_splh_z+z_encaixe])
    translate([0,0,xeuss_z+Zdelize])
    translate([0,0,diff_splh_z/2-cubo/2])
    translate([0,0,-desce_enough-folga2]){
        translate([-gordura,-gordura,0])
        translate([(long_pottop+esp_pottop)*1.5,esp_pottop,0])
        translate([-folga1-esp_pottop,-folga1-esp_pottop,-folga1-esp_pottop-alt_bob-alt_quad])
        cube([long_pottop+2*gordura,long_pottop+2*gordura,desce_enough-folga2]);
        translate([-gordura,-gordura,0])
        translate([-(long_pottop+esp_pottop)*1.5,esp_pottop,0])
        translate([cubo+2*esp_pottop+2*folga1-long_pottop,0,0])
        translate([-folga1-esp_pottop,-folga1-esp_pottop,-folga1-esp_pottop-alt_bob-alt_quad])
        cube([long_pottop+2*gordura,long_pottop+2*gordura,desce_enough-folga2]);
        translate([0,cubo+2*esp_pottop+2*folga1-long_pottop-esp_pottop,0]){
            translate([-gordura,-gordura,0])
            translate([(long_pottop+esp_pottop)*1.5,0,0])
            translate([-folga1-esp_pottop,-folga1-esp_pottop,-folga1-esp_pottop-alt_bob-alt_quad])
            cube([long_pottop+2*gordura,long_pottop+2*gordura,desce_enough-folga2]);
            translate([-gordura,-gordura,0])
            translate([-(long_pottop+esp_pottop)*1.5,0,0])
            translate([cubo+2*esp_pottop+2*folga1-long_pottop,0,0])
            translate([-folga1-esp_pottop,-folga1-esp_pottop,-folga1-esp_pottop-alt_bob-alt_quad])
            cube([long_pottop+2*gordura,long_pottop+2*gordura,desce_enough-folga2]);
        }
    }
    #translate([0,0,-folga2])
    #translate([xeuss_x/2-cubo/2,xeuss_x/2-cubo/2,0])
    #translate([0,0,splh_z-(splh_x/2-diff_splh_x/2)-diff_splh_z+z_encaixe])
    #translate([0,0,xeuss_z+Zdelize])
    #translate([0,0,diff_splh_z/2-cubo/2])
    #translate([0,0,-desce_enough-folga2]){
        #translate([-folga1,-folga1,0])
        #translate([(long_pottop+esp_pottop)*1.5,esp_pottop,0])
        #translate([-folga1-esp_pottop,-folga1-esp_pottop,-folga1-esp_pottop-alt_bob-alt_quad])
        #cube([long_pottop+2*folga1,long_pottop+2*folga1,gordura]);
        #translate([-folga1,-folga1,0])
        #translate([-(long_pottop+esp_pottop)*1.5,esp_pottop,0])
        #translate([cubo+2*esp_pottop+2*folga1-long_pottop,0,0])
        #translate([-folga1-esp_pottop,-folga1-esp_pottop,-folga1-esp_pottop-alt_bob-alt_quad])
        #cube([long_pottop+2*folga1,long_pottop+2*folga1,gordura]);
        #translate([0,cubo+2*esp_pottop+2*folga1-long_pottop-esp_pottop,0]){
            #translate([-folga1,-folga1,0])
            #translate([(long_pottop+esp_pottop)*1.5,0,0])
            #translate([-folga1-esp_pottop,-folga1-esp_pottop,-folga1-esp_pottop-alt_bob-alt_quad])
            #cube([long_pottop+2*folga1,long_pottop+2*folga1,gordura]);
            #translate([-folga1,-folga1,0])
            #translate([-(long_pottop+esp_pottop)*1.5,0,0])
            #translate([cubo+2*esp_pottop+2*folga1-long_pottop,0,0])
            #translate([-folga1-esp_pottop,-folga1-esp_pottop,-folga1-esp_pottop-alt_bob-alt_quad])
            #cube([long_pottop+2*folga1,long_pottop+2*folga1,gordura]);
        }
    }
}


translate([0,0,gordura+folga2])
translate([xeuss_x/2-cubo/2,xeuss_x/2-cubo/2,0])
translate([0,0,splh_z-(splh_x/2-diff_splh_x/2)-diff_splh_z+z_encaixe])
translate([0,0,xeuss_z+Zdelize])
translate([0,0,diff_splh_z/2-cubo/2])
translate([0,0,-desce_enough-folga2]){
    translate([folga1,folga1,0])
    translate([(long_pottop+esp_pottop)*1.5,esp_pottop,0])
    translate([-folga1-esp_pottop,-folga1-esp_pottop,-folga1-esp_pottop-alt_bob-alt_quad])
    cube([long_pottop-2*folga1,long_pottop-2*folga1,desce_enough-2*folga2]);
    translate([folga1,folga1,0])
    translate([-(long_pottop+esp_pottop)*1.5,esp_pottop,0])
    translate([cubo+2*esp_pottop+2*folga1-long_pottop,0,0])
    translate([-folga1-esp_pottop,-folga1-esp_pottop,-folga1-esp_pottop-alt_bob-alt_quad])
    cube([long_pottop-2*folga1,long_pottop-2*folga1,desce_enough-2*folga2]);
    translate([0,cubo+2*esp_pottop+2*folga1-long_pottop-esp_pottop,0]){
        translate([folga1,folga1,0])
        translate([(long_pottop+esp_pottop)*1.5,0,0])
        translate([-folga1-esp_pottop,-folga1-esp_pottop,-folga1-esp_pottop-alt_bob-alt_quad])
        cube([long_pottop-2*folga1,long_pottop-2*folga1,desce_enough-2*folga2]);
        translate([folga1,folga1,0])
        translate([-(long_pottop+esp_pottop)*1.5,0,0])
        translate([cubo+2*esp_pottop+2*folga1-long_pottop,0,0])
        translate([-folga1-esp_pottop,-folga1-esp_pottop,-folga1-esp_pottop-alt_bob-alt_quad])
        cube([long_pottop-2*folga1,long_pottop-2*folga1,desce_enough-2*folga2]);
    }
}*/
